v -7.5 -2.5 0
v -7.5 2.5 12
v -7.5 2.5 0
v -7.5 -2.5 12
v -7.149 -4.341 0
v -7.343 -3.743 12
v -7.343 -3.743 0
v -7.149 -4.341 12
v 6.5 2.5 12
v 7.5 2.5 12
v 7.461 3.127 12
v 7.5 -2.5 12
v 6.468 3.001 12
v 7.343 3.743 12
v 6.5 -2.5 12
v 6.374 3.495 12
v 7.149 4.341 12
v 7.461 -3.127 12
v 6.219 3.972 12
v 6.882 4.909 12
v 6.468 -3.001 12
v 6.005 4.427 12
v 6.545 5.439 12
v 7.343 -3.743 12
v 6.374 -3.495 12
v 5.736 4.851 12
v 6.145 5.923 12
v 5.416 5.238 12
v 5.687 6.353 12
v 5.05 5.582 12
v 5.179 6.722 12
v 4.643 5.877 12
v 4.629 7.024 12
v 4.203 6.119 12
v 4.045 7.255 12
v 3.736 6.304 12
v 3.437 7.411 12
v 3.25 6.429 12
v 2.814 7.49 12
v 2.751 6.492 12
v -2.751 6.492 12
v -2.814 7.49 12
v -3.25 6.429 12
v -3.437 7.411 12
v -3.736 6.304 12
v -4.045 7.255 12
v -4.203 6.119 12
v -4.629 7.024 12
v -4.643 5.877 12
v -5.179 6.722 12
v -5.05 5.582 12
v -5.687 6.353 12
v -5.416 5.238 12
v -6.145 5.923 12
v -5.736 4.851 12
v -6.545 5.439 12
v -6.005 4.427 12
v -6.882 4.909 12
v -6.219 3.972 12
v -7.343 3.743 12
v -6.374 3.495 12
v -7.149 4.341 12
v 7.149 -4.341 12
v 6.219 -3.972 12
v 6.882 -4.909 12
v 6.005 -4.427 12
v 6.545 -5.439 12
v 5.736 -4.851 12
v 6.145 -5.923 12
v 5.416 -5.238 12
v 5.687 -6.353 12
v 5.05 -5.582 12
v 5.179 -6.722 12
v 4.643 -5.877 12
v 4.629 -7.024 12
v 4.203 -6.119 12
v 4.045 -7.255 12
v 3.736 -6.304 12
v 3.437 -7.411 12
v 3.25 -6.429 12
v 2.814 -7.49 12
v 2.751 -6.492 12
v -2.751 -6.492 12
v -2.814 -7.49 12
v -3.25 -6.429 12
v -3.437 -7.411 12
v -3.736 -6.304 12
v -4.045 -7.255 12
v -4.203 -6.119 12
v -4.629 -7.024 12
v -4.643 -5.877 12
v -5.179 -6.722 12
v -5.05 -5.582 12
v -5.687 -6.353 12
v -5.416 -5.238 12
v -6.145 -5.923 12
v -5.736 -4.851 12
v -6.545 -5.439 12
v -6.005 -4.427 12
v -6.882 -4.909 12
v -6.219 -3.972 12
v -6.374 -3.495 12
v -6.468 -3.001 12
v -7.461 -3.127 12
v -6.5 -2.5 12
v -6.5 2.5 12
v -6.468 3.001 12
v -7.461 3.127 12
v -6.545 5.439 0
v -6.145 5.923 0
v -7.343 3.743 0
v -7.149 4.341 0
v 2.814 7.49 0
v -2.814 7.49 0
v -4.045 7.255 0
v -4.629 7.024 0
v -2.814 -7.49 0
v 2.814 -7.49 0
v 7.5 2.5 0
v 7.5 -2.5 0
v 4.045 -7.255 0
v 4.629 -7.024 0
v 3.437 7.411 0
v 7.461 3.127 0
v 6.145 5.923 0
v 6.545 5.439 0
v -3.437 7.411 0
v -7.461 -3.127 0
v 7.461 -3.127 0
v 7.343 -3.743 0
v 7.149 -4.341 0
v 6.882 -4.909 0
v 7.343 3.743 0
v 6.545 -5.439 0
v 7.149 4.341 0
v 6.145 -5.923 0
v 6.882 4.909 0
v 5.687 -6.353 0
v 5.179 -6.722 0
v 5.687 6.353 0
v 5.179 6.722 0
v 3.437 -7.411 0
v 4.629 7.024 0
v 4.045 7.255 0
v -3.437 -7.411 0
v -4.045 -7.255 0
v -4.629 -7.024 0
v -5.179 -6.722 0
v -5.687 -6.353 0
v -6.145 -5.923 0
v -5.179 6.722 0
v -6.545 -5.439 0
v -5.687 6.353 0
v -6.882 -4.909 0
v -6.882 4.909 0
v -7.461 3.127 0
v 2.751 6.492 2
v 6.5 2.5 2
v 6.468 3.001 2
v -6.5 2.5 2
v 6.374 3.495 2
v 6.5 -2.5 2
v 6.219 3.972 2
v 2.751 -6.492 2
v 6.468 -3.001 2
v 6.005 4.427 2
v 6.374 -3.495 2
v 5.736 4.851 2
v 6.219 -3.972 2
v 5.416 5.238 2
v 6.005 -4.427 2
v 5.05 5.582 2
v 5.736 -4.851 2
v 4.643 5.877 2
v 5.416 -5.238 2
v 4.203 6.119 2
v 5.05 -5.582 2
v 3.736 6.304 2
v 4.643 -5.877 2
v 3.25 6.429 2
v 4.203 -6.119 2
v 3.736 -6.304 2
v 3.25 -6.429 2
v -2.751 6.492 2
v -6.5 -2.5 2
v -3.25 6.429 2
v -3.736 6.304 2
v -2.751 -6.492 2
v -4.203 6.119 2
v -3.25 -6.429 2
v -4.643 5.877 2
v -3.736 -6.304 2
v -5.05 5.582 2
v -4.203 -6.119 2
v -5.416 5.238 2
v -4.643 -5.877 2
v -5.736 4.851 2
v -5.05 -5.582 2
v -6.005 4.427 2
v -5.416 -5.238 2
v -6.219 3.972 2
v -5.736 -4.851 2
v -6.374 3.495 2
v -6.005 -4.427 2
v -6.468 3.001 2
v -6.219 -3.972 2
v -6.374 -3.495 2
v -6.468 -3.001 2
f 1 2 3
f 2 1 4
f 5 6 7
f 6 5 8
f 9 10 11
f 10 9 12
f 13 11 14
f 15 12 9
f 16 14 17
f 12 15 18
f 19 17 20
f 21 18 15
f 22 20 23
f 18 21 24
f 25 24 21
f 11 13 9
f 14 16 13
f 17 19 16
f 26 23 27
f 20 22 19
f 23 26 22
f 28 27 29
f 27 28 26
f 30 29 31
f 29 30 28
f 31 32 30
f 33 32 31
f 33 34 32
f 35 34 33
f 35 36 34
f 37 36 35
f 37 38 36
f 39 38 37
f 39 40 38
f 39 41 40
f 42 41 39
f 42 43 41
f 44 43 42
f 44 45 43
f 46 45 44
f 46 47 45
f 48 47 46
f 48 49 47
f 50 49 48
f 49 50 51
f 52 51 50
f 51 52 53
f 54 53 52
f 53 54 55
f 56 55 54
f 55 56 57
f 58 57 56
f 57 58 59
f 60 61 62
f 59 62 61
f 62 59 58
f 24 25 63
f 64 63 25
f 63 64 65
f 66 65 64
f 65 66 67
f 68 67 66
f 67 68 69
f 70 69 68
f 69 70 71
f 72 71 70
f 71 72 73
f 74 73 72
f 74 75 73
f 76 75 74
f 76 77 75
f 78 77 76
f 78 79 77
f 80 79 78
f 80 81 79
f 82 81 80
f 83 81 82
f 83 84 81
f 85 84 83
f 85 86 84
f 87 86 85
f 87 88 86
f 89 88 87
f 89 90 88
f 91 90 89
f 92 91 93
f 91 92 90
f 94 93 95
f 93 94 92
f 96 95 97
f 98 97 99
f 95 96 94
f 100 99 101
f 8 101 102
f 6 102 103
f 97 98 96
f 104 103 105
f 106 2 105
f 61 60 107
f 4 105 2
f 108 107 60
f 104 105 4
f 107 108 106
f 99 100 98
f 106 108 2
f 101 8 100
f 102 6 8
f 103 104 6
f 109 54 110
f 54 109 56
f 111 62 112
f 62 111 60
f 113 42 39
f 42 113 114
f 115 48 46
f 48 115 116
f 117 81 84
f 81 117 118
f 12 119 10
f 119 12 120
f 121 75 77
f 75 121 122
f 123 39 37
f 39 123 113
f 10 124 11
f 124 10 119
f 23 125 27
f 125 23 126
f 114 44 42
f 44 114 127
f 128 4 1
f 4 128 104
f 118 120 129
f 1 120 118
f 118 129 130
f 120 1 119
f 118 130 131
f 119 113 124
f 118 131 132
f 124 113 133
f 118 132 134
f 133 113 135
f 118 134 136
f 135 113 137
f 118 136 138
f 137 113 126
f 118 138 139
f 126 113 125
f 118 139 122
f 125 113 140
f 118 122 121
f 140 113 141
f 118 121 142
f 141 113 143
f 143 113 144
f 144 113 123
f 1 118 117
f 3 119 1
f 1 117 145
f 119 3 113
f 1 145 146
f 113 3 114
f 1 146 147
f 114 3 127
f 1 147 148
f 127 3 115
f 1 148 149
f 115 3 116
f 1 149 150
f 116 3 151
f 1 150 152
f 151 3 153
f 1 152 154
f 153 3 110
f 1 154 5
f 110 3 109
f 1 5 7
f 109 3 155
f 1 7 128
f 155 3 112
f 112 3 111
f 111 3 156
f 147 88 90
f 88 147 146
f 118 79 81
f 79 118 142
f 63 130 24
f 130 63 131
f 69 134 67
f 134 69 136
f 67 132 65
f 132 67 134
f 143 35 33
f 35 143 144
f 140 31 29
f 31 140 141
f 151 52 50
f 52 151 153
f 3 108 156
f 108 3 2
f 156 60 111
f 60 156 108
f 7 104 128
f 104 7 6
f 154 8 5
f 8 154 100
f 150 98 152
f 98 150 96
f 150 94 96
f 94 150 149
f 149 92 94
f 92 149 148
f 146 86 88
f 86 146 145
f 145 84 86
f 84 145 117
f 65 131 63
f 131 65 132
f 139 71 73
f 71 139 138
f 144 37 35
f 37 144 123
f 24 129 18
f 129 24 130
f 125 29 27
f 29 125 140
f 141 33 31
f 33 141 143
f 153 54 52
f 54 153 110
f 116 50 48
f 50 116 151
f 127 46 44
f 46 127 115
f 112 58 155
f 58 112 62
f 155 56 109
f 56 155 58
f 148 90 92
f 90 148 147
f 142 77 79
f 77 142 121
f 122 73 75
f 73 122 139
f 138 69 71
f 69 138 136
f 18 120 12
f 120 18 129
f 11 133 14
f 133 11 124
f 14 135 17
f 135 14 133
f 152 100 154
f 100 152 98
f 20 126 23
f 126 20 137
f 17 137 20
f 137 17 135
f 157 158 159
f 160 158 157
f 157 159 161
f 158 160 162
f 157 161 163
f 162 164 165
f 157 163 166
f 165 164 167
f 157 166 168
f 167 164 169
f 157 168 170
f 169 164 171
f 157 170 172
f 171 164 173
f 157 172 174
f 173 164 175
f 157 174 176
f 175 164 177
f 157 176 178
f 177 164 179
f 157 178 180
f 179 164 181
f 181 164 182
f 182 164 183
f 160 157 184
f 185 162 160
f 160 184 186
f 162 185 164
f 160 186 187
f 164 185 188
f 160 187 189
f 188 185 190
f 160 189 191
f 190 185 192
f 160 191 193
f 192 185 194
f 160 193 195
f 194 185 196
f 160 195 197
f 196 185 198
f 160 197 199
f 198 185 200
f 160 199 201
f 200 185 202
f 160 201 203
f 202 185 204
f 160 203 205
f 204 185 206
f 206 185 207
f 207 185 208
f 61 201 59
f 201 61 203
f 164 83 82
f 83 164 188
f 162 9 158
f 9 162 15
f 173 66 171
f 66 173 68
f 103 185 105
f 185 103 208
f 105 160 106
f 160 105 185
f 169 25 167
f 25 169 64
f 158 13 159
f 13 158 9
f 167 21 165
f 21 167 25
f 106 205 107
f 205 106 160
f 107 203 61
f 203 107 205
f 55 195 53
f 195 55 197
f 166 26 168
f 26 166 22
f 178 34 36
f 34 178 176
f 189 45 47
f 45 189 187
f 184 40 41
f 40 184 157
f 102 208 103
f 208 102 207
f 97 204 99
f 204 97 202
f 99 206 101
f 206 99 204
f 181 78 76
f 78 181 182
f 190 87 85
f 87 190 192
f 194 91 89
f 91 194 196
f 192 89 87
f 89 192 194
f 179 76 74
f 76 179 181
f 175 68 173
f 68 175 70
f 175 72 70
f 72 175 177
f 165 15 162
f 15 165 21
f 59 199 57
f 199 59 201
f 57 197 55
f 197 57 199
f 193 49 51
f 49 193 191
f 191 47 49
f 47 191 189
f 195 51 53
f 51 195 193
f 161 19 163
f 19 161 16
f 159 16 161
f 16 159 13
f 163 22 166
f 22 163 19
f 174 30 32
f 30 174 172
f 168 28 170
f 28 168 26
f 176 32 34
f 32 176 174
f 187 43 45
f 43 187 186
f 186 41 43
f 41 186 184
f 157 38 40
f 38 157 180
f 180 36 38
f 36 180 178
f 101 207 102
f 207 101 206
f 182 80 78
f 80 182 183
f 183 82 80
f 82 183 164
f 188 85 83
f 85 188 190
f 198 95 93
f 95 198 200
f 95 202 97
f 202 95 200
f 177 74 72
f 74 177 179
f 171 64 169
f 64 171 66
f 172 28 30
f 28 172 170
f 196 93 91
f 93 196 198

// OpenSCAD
$fn = 50;


difference() {
	union() {
		hull() {
			translate(v = [-2.5000000000, 2.5000000000, 0]) {
				cylinder(h = 12, r = 5);
			}
			translate(v = [2.5000000000, 2.5000000000, 0]) {
				cylinder(h = 12, r = 5);
			}
			translate(v = [-2.5000000000, -2.5000000000, 0]) {
				cylinder(h = 12, r = 5);
			}
			translate(v = [2.5000000000, -2.5000000000, 0]) {
				cylinder(h = 12, r = 5);
			}
		}
	}
	union() {
		translate(v = [0, 0, 2]) {
			hull() {
				translate(v = [-2.5000000000, 2.5000000000, 0]) {
					cylinder(h = 10, r = 4);
				}
				translate(v = [2.5000000000, 2.5000000000, 0]) {
					cylinder(h = 10, r = 4);
				}
				translate(v = [-2.5000000000, -2.5000000000, 0]) {
					cylinder(h = 10, r = 4);
				}
				translate(v = [2.5000000000, -2.5000000000, 0]) {
					cylinder(h = 10, r = 4);
				}
			}
		}
	}
}
